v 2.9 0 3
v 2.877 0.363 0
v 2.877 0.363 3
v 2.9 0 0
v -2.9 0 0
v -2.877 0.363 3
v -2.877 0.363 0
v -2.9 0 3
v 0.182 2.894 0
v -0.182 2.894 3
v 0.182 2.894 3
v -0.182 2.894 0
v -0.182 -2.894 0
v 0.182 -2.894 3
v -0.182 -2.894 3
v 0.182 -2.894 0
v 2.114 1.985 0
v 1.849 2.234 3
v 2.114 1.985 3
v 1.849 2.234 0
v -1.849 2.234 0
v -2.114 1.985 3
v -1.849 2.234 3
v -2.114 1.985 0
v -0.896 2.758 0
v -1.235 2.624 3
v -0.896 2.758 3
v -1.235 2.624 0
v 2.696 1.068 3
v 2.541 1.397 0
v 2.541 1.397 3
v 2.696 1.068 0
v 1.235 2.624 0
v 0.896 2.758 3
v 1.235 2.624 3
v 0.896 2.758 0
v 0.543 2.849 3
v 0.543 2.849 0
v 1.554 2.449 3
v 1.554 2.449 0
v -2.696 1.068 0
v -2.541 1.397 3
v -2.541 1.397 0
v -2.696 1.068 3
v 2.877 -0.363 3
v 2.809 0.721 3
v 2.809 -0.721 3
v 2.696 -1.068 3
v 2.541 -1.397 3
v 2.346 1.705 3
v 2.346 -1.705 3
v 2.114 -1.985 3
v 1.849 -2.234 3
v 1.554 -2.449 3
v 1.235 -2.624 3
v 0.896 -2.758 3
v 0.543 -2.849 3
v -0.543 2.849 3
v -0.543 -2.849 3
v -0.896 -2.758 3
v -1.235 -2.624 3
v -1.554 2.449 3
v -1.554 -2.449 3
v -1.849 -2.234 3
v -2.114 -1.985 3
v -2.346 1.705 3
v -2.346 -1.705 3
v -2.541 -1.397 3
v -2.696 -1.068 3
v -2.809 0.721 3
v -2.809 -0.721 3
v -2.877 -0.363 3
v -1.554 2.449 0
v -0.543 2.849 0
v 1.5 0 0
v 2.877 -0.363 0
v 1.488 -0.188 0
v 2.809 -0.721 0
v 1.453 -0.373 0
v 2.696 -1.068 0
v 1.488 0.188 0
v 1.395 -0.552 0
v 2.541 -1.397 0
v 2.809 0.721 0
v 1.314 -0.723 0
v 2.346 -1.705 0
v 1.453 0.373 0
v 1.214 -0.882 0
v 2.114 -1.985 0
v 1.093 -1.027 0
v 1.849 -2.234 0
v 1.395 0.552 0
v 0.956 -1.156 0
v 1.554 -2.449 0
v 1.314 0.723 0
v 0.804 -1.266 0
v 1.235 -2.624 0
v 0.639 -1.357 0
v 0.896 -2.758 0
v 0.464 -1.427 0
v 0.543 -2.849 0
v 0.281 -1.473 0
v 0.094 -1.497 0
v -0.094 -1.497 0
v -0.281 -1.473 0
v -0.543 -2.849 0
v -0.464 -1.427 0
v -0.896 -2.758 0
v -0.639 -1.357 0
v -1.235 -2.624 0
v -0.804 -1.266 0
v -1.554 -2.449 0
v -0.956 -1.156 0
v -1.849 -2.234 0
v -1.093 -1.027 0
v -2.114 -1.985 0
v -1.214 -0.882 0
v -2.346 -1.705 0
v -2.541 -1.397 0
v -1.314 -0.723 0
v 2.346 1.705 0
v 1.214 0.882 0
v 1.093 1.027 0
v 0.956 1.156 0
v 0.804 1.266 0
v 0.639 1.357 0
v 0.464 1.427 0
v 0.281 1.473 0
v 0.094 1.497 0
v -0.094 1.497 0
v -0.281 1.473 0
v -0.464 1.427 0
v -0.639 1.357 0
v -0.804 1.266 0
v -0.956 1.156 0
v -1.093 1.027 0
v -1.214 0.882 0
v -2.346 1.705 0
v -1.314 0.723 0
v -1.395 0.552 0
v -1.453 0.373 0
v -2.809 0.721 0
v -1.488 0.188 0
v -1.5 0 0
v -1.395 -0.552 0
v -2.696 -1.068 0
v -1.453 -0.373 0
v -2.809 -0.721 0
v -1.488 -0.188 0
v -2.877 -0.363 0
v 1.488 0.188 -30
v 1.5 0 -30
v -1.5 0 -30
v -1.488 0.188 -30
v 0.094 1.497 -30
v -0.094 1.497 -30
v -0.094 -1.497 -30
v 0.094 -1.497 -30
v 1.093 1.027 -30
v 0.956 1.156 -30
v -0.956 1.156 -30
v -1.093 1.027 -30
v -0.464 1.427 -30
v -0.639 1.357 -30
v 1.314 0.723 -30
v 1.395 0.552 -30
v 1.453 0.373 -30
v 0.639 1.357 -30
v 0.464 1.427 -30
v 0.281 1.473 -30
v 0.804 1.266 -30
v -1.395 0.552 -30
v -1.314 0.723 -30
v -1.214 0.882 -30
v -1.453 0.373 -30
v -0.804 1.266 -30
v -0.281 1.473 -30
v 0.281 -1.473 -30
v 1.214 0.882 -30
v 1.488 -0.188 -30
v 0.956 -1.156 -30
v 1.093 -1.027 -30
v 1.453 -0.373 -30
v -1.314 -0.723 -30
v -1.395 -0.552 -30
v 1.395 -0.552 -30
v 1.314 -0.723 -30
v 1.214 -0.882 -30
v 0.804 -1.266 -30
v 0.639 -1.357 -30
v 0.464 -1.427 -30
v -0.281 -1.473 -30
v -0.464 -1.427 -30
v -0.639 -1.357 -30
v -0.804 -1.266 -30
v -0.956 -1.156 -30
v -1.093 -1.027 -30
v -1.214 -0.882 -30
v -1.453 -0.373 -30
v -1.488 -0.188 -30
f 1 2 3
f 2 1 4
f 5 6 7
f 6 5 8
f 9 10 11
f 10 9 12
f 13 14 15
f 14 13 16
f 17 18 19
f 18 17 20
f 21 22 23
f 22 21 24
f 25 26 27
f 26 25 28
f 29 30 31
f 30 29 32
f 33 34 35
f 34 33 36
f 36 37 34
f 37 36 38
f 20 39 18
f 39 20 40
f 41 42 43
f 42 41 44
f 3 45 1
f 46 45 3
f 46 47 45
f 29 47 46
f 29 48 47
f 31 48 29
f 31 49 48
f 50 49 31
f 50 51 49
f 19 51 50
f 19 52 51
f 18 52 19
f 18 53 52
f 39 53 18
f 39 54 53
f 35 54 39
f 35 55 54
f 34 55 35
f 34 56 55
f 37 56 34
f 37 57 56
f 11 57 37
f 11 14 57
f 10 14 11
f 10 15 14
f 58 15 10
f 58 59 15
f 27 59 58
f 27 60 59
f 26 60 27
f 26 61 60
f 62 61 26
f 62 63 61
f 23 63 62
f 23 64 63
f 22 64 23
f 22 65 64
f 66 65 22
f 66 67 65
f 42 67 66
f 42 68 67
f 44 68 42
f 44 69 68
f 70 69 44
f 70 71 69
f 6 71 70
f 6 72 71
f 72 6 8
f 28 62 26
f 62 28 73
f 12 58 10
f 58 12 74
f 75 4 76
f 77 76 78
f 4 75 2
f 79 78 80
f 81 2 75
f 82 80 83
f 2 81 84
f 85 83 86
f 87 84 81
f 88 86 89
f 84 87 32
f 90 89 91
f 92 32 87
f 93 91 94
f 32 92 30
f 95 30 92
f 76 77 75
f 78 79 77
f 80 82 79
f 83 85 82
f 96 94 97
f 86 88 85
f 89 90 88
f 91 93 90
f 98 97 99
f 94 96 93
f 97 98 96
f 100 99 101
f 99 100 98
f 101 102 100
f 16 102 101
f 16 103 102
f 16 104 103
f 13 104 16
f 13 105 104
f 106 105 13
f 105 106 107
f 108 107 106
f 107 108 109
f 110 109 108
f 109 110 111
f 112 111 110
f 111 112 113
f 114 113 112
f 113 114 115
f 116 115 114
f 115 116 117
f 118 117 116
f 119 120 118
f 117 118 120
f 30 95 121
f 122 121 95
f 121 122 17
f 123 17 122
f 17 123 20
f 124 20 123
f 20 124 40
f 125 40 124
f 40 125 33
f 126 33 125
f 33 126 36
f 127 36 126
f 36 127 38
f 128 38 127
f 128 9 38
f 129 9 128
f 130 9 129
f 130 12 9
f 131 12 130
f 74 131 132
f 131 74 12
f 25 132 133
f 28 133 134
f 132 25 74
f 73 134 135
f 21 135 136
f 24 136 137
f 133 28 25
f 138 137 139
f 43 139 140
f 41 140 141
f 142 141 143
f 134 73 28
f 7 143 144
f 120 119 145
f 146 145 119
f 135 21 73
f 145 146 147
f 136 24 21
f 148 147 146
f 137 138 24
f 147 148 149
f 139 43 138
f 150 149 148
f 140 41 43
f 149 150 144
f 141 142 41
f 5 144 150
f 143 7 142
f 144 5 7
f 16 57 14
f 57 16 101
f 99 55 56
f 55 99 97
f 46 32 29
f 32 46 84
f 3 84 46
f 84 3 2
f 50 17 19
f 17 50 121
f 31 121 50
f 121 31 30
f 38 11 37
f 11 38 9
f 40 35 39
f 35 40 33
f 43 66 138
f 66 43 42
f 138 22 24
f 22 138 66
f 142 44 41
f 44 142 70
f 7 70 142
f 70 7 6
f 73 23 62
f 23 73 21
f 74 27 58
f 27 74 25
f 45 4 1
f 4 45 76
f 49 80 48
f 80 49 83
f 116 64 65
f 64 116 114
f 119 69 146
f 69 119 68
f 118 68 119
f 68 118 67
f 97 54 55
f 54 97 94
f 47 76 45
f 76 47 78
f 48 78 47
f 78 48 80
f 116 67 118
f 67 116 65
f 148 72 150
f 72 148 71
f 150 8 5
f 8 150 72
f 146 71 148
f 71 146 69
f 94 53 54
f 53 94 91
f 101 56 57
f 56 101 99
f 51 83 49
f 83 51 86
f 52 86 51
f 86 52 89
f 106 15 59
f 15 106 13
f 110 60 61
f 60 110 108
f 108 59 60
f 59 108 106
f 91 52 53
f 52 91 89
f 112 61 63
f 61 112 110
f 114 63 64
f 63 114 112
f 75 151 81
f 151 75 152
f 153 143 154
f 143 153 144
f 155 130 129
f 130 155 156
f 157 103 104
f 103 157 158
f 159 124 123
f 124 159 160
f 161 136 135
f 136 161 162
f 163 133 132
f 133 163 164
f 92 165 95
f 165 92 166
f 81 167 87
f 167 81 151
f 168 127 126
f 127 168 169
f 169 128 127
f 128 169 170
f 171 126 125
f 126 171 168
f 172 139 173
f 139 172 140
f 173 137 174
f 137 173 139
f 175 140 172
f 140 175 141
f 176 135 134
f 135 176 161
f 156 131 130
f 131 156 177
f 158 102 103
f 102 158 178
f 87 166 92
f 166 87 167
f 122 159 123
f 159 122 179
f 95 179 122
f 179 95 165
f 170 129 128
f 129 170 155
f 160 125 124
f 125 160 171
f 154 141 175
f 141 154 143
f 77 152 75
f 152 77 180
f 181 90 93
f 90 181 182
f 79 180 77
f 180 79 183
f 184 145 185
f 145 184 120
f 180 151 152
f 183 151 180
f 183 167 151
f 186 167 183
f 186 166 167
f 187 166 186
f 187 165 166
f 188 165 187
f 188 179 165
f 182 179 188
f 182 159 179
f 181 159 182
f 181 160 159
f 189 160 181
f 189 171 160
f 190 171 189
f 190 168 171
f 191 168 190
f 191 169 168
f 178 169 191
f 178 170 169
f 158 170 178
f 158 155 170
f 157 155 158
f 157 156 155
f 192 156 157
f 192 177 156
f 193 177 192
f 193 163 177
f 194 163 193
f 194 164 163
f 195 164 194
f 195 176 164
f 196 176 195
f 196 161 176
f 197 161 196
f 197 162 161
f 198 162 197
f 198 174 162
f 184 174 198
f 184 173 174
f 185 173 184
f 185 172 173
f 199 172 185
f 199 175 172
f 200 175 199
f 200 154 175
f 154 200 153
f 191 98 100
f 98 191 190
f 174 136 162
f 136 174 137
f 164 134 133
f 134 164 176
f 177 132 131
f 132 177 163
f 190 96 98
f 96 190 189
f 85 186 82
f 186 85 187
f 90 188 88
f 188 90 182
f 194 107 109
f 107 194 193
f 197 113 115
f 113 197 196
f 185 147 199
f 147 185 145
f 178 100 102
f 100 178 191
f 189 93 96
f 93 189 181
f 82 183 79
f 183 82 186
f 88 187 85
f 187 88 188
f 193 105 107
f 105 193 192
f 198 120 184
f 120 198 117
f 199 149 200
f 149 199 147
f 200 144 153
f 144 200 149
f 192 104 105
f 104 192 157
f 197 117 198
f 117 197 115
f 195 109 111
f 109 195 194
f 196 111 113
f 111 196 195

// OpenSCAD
$fn = 50;


difference() {
	union() {
		translate(v = [0, 0, 0]) {
			rotate(a = [0, 0, 0]) {
				cylinder(h = 3, r = 2.9000000000);
			}
		}
		translate(v = [0, 0, -30]) {
			rotate(a = [0, 0, 0]) {
				cylinder(h = 30, r = 1.5000000000);
			}
		}
	}
	union();
}
